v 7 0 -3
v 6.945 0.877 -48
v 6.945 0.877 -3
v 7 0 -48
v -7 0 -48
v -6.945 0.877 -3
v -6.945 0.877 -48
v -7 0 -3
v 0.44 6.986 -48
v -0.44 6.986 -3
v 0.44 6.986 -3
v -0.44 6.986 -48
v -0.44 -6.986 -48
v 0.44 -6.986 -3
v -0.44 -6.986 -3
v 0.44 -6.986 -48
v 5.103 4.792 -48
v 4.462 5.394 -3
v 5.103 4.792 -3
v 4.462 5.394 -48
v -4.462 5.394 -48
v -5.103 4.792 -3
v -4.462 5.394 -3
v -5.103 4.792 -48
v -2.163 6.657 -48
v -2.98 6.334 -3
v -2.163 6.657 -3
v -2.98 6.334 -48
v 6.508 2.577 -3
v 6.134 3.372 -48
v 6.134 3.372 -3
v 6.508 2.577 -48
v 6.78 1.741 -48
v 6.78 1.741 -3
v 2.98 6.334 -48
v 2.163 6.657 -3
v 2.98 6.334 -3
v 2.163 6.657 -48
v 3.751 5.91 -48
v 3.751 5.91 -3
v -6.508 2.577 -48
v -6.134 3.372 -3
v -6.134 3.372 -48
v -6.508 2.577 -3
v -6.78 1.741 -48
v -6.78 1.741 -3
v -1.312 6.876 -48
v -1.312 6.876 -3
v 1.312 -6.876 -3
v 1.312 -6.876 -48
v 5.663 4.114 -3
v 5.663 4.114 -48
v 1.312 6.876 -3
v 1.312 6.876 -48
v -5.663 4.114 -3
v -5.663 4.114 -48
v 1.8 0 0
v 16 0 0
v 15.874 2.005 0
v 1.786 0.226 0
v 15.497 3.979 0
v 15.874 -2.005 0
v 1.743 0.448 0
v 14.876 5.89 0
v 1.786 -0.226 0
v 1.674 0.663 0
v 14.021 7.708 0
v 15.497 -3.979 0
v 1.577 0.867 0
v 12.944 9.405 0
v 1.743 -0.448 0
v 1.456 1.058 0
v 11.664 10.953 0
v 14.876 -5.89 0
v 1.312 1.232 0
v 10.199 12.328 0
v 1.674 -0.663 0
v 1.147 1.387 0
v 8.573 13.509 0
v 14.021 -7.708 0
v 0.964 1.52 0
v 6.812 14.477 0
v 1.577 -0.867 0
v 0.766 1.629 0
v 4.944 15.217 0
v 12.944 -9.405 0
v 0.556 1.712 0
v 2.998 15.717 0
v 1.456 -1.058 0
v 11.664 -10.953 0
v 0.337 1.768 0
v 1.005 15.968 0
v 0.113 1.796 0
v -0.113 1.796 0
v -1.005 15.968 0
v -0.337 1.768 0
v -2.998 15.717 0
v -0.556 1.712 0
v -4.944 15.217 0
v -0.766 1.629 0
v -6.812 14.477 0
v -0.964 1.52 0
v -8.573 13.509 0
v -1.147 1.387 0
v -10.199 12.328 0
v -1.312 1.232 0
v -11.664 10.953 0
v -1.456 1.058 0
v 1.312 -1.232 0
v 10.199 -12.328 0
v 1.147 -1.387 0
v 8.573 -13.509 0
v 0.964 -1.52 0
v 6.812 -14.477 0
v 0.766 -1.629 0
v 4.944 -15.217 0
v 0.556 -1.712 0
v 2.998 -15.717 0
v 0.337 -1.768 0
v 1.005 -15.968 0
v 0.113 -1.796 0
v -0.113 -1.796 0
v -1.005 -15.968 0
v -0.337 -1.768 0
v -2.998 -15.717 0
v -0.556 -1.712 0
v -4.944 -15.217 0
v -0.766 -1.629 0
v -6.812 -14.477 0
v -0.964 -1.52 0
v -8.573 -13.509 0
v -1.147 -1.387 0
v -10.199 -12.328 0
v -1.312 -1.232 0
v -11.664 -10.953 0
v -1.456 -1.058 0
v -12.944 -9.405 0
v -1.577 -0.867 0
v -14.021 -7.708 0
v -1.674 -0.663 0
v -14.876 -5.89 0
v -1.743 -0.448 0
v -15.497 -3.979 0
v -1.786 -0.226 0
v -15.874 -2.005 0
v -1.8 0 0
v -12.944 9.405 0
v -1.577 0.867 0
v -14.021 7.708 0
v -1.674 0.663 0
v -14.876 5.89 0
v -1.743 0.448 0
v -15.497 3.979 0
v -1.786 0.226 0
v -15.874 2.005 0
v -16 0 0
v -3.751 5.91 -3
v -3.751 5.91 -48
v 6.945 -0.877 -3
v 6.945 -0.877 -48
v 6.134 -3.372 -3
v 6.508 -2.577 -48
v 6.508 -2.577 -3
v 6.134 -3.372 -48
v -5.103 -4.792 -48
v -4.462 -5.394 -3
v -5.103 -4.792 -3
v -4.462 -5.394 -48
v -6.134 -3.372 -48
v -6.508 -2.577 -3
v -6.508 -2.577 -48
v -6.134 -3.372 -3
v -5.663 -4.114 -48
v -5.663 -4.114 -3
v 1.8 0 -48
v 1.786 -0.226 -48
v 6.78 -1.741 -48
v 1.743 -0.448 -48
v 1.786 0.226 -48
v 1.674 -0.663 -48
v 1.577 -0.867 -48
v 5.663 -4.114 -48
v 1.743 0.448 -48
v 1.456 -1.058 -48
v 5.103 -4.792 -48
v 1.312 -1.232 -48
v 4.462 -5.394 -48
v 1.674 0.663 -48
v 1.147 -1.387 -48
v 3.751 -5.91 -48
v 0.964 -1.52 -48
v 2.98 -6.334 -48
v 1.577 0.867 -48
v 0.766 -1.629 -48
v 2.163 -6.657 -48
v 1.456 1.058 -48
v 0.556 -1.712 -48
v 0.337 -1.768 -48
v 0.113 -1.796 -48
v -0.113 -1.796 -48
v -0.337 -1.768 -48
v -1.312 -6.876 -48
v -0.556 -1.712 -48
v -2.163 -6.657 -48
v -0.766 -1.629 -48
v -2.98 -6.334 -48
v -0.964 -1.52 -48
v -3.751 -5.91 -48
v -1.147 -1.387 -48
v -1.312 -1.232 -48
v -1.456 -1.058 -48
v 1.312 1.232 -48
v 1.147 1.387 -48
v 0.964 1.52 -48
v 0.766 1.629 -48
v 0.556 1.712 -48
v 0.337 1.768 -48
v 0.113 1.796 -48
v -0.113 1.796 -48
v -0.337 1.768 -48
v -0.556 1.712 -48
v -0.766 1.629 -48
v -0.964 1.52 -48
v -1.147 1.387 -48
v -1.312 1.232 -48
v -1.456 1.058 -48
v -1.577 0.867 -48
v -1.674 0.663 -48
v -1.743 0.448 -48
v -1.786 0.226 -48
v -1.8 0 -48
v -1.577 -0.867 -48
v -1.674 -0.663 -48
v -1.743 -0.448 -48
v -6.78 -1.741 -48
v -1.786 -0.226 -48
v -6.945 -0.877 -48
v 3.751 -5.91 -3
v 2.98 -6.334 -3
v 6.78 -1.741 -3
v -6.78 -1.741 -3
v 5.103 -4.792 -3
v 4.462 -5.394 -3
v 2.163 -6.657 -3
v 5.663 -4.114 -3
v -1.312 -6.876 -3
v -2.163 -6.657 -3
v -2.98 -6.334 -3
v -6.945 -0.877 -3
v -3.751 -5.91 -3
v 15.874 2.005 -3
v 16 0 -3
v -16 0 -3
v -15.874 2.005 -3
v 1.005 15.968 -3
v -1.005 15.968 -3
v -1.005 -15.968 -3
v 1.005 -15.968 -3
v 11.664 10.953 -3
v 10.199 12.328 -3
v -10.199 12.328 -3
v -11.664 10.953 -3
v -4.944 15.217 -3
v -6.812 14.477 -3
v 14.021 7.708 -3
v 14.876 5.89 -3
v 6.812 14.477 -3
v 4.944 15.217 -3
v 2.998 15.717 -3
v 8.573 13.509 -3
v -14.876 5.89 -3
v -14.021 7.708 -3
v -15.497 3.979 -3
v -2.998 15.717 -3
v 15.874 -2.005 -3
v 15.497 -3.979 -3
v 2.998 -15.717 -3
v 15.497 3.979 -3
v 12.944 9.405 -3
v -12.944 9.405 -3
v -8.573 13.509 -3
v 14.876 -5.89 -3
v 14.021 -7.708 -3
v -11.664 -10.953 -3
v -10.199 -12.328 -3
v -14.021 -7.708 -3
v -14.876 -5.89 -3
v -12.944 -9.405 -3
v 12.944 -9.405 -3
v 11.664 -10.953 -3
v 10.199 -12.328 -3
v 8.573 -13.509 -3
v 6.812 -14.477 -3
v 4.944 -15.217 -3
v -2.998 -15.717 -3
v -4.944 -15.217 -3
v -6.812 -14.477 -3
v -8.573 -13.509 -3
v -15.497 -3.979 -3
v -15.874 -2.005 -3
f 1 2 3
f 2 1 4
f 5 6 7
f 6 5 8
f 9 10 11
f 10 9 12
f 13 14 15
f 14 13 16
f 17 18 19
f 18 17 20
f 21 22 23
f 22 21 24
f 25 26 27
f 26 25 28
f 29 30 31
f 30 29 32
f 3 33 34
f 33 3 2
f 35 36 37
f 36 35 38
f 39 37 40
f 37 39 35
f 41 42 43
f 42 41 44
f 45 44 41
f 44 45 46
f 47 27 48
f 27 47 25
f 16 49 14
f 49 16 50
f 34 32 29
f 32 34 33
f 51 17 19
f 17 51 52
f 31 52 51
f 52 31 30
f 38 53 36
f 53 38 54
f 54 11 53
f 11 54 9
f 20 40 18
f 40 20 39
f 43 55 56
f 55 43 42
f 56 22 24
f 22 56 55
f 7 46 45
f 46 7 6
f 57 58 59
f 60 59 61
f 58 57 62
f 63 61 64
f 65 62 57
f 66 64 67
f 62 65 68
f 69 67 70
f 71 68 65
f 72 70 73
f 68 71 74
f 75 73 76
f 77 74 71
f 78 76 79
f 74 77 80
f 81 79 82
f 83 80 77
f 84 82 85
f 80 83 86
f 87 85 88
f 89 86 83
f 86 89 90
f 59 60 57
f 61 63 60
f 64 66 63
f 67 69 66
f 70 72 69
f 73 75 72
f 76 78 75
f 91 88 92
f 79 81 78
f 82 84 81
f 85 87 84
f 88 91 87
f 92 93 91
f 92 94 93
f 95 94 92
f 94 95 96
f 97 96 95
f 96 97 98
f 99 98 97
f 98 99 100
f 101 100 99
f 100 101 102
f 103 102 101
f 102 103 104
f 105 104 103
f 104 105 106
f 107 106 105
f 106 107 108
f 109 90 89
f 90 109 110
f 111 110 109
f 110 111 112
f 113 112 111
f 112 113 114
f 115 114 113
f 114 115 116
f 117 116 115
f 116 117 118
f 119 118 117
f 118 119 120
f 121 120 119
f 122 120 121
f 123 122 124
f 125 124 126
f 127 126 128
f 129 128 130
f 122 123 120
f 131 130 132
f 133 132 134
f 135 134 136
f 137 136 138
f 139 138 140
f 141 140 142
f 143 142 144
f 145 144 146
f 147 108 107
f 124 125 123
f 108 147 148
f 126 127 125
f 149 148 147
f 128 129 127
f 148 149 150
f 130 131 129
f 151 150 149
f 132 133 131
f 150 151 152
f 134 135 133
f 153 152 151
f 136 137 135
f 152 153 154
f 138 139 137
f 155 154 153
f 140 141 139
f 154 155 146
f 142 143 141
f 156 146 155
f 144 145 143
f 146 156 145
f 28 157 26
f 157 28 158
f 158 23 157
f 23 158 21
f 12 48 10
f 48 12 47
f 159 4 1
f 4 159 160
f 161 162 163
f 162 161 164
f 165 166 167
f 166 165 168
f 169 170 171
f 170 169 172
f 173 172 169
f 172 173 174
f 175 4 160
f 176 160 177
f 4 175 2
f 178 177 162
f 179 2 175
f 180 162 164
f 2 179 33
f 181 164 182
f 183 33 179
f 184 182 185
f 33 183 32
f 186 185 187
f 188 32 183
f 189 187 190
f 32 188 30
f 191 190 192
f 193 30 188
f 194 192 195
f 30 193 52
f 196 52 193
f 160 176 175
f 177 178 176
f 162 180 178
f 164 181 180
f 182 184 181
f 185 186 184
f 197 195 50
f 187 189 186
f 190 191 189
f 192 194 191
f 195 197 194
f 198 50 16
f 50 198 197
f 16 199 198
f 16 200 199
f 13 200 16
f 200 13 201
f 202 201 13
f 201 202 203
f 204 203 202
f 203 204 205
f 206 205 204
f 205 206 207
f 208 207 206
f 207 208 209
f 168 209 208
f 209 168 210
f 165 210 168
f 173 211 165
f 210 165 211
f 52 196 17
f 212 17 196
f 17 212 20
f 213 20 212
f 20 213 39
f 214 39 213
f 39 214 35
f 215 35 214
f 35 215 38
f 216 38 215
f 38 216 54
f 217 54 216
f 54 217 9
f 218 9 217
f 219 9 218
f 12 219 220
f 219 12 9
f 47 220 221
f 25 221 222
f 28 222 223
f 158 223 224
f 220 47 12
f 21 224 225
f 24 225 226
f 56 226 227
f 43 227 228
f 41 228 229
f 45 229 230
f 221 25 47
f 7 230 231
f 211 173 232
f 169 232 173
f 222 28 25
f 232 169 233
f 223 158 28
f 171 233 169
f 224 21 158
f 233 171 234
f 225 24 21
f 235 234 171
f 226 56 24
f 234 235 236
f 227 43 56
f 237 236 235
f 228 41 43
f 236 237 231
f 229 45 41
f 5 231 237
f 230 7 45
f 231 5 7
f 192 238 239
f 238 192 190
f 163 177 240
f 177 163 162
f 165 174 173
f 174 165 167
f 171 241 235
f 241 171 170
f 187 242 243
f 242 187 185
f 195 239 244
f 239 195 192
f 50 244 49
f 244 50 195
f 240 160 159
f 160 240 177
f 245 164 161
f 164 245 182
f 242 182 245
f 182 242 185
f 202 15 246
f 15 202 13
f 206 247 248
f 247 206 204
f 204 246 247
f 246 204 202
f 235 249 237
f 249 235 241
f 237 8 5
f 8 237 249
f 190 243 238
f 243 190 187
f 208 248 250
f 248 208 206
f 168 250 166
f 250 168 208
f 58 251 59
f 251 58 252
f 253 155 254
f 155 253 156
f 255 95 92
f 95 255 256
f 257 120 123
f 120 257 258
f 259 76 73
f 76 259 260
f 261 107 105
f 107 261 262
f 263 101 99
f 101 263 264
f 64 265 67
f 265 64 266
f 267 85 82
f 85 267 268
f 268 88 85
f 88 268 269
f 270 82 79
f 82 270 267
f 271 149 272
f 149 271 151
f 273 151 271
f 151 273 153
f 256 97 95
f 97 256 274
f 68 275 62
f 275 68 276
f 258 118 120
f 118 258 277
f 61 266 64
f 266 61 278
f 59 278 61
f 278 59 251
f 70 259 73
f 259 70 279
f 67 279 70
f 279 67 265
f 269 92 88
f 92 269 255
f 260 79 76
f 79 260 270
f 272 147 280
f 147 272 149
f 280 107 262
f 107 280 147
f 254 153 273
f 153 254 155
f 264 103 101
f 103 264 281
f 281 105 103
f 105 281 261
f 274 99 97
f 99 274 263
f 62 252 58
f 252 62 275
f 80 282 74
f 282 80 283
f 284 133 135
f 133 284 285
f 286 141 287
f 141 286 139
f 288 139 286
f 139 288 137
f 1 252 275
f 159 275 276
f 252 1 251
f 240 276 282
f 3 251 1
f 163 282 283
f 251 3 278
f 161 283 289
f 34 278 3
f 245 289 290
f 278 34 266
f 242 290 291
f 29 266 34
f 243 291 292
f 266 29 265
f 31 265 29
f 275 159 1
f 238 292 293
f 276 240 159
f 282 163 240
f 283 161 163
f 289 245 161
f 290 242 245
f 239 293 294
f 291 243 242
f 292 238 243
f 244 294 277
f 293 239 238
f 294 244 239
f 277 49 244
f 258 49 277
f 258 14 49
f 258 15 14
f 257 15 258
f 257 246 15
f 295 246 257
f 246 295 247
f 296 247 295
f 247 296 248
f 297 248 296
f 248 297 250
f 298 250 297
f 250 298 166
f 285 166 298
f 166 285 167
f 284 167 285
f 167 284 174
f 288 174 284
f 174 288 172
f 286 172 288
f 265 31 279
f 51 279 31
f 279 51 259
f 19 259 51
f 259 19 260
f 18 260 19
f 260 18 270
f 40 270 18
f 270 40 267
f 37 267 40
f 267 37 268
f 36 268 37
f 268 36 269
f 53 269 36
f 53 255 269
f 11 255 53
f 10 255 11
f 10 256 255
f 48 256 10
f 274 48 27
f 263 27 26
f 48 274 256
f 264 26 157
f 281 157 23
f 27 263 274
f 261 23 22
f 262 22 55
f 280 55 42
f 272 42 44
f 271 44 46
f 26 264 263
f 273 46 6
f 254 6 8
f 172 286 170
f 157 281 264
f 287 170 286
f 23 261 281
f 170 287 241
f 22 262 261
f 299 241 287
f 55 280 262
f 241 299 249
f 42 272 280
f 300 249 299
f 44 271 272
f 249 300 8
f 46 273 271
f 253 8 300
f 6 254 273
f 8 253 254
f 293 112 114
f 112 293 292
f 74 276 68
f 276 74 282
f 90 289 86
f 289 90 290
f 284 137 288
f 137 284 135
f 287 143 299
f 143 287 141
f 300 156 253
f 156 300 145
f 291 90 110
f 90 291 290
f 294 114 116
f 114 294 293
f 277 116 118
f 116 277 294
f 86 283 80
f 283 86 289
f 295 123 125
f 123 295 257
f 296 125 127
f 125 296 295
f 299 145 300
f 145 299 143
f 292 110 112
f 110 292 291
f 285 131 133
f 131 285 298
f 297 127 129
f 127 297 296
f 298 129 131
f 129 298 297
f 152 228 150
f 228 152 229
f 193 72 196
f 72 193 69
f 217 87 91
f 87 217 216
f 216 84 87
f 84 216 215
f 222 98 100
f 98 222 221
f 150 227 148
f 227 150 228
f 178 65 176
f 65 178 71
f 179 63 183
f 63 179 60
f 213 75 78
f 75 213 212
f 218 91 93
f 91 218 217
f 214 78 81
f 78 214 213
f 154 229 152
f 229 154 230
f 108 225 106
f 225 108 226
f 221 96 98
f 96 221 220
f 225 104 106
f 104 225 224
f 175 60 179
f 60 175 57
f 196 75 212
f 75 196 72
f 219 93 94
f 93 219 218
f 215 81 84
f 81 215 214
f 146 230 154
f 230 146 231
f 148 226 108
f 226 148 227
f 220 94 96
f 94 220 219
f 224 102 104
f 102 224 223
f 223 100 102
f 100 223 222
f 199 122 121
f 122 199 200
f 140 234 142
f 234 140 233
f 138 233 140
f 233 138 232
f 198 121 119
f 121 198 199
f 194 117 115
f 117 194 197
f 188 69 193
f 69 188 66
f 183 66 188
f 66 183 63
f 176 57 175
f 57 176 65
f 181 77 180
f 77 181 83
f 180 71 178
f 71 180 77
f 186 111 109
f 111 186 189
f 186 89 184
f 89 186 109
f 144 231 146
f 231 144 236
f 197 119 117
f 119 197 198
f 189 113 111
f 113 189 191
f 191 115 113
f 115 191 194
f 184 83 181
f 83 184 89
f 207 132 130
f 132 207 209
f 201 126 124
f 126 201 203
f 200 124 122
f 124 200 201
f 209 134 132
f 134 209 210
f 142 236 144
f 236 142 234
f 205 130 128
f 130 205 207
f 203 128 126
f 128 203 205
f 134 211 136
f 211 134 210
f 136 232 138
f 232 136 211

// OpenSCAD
$fn = 50;


difference() {
	union() {
		translate(v = [0, 0, -48.0000000000]) {
			cylinder(h = 48, r = 7.0000000000);
		}
		translate(v = [0, 0, -3.0000000000]) {
			cylinder(h = 3, r = 16.0000000000);
		}
	}
	union() {
		#translate(v = [0, 0, -48]) {
			cylinder(h = 48, r = 1.8000000000);
		}
	}
}
